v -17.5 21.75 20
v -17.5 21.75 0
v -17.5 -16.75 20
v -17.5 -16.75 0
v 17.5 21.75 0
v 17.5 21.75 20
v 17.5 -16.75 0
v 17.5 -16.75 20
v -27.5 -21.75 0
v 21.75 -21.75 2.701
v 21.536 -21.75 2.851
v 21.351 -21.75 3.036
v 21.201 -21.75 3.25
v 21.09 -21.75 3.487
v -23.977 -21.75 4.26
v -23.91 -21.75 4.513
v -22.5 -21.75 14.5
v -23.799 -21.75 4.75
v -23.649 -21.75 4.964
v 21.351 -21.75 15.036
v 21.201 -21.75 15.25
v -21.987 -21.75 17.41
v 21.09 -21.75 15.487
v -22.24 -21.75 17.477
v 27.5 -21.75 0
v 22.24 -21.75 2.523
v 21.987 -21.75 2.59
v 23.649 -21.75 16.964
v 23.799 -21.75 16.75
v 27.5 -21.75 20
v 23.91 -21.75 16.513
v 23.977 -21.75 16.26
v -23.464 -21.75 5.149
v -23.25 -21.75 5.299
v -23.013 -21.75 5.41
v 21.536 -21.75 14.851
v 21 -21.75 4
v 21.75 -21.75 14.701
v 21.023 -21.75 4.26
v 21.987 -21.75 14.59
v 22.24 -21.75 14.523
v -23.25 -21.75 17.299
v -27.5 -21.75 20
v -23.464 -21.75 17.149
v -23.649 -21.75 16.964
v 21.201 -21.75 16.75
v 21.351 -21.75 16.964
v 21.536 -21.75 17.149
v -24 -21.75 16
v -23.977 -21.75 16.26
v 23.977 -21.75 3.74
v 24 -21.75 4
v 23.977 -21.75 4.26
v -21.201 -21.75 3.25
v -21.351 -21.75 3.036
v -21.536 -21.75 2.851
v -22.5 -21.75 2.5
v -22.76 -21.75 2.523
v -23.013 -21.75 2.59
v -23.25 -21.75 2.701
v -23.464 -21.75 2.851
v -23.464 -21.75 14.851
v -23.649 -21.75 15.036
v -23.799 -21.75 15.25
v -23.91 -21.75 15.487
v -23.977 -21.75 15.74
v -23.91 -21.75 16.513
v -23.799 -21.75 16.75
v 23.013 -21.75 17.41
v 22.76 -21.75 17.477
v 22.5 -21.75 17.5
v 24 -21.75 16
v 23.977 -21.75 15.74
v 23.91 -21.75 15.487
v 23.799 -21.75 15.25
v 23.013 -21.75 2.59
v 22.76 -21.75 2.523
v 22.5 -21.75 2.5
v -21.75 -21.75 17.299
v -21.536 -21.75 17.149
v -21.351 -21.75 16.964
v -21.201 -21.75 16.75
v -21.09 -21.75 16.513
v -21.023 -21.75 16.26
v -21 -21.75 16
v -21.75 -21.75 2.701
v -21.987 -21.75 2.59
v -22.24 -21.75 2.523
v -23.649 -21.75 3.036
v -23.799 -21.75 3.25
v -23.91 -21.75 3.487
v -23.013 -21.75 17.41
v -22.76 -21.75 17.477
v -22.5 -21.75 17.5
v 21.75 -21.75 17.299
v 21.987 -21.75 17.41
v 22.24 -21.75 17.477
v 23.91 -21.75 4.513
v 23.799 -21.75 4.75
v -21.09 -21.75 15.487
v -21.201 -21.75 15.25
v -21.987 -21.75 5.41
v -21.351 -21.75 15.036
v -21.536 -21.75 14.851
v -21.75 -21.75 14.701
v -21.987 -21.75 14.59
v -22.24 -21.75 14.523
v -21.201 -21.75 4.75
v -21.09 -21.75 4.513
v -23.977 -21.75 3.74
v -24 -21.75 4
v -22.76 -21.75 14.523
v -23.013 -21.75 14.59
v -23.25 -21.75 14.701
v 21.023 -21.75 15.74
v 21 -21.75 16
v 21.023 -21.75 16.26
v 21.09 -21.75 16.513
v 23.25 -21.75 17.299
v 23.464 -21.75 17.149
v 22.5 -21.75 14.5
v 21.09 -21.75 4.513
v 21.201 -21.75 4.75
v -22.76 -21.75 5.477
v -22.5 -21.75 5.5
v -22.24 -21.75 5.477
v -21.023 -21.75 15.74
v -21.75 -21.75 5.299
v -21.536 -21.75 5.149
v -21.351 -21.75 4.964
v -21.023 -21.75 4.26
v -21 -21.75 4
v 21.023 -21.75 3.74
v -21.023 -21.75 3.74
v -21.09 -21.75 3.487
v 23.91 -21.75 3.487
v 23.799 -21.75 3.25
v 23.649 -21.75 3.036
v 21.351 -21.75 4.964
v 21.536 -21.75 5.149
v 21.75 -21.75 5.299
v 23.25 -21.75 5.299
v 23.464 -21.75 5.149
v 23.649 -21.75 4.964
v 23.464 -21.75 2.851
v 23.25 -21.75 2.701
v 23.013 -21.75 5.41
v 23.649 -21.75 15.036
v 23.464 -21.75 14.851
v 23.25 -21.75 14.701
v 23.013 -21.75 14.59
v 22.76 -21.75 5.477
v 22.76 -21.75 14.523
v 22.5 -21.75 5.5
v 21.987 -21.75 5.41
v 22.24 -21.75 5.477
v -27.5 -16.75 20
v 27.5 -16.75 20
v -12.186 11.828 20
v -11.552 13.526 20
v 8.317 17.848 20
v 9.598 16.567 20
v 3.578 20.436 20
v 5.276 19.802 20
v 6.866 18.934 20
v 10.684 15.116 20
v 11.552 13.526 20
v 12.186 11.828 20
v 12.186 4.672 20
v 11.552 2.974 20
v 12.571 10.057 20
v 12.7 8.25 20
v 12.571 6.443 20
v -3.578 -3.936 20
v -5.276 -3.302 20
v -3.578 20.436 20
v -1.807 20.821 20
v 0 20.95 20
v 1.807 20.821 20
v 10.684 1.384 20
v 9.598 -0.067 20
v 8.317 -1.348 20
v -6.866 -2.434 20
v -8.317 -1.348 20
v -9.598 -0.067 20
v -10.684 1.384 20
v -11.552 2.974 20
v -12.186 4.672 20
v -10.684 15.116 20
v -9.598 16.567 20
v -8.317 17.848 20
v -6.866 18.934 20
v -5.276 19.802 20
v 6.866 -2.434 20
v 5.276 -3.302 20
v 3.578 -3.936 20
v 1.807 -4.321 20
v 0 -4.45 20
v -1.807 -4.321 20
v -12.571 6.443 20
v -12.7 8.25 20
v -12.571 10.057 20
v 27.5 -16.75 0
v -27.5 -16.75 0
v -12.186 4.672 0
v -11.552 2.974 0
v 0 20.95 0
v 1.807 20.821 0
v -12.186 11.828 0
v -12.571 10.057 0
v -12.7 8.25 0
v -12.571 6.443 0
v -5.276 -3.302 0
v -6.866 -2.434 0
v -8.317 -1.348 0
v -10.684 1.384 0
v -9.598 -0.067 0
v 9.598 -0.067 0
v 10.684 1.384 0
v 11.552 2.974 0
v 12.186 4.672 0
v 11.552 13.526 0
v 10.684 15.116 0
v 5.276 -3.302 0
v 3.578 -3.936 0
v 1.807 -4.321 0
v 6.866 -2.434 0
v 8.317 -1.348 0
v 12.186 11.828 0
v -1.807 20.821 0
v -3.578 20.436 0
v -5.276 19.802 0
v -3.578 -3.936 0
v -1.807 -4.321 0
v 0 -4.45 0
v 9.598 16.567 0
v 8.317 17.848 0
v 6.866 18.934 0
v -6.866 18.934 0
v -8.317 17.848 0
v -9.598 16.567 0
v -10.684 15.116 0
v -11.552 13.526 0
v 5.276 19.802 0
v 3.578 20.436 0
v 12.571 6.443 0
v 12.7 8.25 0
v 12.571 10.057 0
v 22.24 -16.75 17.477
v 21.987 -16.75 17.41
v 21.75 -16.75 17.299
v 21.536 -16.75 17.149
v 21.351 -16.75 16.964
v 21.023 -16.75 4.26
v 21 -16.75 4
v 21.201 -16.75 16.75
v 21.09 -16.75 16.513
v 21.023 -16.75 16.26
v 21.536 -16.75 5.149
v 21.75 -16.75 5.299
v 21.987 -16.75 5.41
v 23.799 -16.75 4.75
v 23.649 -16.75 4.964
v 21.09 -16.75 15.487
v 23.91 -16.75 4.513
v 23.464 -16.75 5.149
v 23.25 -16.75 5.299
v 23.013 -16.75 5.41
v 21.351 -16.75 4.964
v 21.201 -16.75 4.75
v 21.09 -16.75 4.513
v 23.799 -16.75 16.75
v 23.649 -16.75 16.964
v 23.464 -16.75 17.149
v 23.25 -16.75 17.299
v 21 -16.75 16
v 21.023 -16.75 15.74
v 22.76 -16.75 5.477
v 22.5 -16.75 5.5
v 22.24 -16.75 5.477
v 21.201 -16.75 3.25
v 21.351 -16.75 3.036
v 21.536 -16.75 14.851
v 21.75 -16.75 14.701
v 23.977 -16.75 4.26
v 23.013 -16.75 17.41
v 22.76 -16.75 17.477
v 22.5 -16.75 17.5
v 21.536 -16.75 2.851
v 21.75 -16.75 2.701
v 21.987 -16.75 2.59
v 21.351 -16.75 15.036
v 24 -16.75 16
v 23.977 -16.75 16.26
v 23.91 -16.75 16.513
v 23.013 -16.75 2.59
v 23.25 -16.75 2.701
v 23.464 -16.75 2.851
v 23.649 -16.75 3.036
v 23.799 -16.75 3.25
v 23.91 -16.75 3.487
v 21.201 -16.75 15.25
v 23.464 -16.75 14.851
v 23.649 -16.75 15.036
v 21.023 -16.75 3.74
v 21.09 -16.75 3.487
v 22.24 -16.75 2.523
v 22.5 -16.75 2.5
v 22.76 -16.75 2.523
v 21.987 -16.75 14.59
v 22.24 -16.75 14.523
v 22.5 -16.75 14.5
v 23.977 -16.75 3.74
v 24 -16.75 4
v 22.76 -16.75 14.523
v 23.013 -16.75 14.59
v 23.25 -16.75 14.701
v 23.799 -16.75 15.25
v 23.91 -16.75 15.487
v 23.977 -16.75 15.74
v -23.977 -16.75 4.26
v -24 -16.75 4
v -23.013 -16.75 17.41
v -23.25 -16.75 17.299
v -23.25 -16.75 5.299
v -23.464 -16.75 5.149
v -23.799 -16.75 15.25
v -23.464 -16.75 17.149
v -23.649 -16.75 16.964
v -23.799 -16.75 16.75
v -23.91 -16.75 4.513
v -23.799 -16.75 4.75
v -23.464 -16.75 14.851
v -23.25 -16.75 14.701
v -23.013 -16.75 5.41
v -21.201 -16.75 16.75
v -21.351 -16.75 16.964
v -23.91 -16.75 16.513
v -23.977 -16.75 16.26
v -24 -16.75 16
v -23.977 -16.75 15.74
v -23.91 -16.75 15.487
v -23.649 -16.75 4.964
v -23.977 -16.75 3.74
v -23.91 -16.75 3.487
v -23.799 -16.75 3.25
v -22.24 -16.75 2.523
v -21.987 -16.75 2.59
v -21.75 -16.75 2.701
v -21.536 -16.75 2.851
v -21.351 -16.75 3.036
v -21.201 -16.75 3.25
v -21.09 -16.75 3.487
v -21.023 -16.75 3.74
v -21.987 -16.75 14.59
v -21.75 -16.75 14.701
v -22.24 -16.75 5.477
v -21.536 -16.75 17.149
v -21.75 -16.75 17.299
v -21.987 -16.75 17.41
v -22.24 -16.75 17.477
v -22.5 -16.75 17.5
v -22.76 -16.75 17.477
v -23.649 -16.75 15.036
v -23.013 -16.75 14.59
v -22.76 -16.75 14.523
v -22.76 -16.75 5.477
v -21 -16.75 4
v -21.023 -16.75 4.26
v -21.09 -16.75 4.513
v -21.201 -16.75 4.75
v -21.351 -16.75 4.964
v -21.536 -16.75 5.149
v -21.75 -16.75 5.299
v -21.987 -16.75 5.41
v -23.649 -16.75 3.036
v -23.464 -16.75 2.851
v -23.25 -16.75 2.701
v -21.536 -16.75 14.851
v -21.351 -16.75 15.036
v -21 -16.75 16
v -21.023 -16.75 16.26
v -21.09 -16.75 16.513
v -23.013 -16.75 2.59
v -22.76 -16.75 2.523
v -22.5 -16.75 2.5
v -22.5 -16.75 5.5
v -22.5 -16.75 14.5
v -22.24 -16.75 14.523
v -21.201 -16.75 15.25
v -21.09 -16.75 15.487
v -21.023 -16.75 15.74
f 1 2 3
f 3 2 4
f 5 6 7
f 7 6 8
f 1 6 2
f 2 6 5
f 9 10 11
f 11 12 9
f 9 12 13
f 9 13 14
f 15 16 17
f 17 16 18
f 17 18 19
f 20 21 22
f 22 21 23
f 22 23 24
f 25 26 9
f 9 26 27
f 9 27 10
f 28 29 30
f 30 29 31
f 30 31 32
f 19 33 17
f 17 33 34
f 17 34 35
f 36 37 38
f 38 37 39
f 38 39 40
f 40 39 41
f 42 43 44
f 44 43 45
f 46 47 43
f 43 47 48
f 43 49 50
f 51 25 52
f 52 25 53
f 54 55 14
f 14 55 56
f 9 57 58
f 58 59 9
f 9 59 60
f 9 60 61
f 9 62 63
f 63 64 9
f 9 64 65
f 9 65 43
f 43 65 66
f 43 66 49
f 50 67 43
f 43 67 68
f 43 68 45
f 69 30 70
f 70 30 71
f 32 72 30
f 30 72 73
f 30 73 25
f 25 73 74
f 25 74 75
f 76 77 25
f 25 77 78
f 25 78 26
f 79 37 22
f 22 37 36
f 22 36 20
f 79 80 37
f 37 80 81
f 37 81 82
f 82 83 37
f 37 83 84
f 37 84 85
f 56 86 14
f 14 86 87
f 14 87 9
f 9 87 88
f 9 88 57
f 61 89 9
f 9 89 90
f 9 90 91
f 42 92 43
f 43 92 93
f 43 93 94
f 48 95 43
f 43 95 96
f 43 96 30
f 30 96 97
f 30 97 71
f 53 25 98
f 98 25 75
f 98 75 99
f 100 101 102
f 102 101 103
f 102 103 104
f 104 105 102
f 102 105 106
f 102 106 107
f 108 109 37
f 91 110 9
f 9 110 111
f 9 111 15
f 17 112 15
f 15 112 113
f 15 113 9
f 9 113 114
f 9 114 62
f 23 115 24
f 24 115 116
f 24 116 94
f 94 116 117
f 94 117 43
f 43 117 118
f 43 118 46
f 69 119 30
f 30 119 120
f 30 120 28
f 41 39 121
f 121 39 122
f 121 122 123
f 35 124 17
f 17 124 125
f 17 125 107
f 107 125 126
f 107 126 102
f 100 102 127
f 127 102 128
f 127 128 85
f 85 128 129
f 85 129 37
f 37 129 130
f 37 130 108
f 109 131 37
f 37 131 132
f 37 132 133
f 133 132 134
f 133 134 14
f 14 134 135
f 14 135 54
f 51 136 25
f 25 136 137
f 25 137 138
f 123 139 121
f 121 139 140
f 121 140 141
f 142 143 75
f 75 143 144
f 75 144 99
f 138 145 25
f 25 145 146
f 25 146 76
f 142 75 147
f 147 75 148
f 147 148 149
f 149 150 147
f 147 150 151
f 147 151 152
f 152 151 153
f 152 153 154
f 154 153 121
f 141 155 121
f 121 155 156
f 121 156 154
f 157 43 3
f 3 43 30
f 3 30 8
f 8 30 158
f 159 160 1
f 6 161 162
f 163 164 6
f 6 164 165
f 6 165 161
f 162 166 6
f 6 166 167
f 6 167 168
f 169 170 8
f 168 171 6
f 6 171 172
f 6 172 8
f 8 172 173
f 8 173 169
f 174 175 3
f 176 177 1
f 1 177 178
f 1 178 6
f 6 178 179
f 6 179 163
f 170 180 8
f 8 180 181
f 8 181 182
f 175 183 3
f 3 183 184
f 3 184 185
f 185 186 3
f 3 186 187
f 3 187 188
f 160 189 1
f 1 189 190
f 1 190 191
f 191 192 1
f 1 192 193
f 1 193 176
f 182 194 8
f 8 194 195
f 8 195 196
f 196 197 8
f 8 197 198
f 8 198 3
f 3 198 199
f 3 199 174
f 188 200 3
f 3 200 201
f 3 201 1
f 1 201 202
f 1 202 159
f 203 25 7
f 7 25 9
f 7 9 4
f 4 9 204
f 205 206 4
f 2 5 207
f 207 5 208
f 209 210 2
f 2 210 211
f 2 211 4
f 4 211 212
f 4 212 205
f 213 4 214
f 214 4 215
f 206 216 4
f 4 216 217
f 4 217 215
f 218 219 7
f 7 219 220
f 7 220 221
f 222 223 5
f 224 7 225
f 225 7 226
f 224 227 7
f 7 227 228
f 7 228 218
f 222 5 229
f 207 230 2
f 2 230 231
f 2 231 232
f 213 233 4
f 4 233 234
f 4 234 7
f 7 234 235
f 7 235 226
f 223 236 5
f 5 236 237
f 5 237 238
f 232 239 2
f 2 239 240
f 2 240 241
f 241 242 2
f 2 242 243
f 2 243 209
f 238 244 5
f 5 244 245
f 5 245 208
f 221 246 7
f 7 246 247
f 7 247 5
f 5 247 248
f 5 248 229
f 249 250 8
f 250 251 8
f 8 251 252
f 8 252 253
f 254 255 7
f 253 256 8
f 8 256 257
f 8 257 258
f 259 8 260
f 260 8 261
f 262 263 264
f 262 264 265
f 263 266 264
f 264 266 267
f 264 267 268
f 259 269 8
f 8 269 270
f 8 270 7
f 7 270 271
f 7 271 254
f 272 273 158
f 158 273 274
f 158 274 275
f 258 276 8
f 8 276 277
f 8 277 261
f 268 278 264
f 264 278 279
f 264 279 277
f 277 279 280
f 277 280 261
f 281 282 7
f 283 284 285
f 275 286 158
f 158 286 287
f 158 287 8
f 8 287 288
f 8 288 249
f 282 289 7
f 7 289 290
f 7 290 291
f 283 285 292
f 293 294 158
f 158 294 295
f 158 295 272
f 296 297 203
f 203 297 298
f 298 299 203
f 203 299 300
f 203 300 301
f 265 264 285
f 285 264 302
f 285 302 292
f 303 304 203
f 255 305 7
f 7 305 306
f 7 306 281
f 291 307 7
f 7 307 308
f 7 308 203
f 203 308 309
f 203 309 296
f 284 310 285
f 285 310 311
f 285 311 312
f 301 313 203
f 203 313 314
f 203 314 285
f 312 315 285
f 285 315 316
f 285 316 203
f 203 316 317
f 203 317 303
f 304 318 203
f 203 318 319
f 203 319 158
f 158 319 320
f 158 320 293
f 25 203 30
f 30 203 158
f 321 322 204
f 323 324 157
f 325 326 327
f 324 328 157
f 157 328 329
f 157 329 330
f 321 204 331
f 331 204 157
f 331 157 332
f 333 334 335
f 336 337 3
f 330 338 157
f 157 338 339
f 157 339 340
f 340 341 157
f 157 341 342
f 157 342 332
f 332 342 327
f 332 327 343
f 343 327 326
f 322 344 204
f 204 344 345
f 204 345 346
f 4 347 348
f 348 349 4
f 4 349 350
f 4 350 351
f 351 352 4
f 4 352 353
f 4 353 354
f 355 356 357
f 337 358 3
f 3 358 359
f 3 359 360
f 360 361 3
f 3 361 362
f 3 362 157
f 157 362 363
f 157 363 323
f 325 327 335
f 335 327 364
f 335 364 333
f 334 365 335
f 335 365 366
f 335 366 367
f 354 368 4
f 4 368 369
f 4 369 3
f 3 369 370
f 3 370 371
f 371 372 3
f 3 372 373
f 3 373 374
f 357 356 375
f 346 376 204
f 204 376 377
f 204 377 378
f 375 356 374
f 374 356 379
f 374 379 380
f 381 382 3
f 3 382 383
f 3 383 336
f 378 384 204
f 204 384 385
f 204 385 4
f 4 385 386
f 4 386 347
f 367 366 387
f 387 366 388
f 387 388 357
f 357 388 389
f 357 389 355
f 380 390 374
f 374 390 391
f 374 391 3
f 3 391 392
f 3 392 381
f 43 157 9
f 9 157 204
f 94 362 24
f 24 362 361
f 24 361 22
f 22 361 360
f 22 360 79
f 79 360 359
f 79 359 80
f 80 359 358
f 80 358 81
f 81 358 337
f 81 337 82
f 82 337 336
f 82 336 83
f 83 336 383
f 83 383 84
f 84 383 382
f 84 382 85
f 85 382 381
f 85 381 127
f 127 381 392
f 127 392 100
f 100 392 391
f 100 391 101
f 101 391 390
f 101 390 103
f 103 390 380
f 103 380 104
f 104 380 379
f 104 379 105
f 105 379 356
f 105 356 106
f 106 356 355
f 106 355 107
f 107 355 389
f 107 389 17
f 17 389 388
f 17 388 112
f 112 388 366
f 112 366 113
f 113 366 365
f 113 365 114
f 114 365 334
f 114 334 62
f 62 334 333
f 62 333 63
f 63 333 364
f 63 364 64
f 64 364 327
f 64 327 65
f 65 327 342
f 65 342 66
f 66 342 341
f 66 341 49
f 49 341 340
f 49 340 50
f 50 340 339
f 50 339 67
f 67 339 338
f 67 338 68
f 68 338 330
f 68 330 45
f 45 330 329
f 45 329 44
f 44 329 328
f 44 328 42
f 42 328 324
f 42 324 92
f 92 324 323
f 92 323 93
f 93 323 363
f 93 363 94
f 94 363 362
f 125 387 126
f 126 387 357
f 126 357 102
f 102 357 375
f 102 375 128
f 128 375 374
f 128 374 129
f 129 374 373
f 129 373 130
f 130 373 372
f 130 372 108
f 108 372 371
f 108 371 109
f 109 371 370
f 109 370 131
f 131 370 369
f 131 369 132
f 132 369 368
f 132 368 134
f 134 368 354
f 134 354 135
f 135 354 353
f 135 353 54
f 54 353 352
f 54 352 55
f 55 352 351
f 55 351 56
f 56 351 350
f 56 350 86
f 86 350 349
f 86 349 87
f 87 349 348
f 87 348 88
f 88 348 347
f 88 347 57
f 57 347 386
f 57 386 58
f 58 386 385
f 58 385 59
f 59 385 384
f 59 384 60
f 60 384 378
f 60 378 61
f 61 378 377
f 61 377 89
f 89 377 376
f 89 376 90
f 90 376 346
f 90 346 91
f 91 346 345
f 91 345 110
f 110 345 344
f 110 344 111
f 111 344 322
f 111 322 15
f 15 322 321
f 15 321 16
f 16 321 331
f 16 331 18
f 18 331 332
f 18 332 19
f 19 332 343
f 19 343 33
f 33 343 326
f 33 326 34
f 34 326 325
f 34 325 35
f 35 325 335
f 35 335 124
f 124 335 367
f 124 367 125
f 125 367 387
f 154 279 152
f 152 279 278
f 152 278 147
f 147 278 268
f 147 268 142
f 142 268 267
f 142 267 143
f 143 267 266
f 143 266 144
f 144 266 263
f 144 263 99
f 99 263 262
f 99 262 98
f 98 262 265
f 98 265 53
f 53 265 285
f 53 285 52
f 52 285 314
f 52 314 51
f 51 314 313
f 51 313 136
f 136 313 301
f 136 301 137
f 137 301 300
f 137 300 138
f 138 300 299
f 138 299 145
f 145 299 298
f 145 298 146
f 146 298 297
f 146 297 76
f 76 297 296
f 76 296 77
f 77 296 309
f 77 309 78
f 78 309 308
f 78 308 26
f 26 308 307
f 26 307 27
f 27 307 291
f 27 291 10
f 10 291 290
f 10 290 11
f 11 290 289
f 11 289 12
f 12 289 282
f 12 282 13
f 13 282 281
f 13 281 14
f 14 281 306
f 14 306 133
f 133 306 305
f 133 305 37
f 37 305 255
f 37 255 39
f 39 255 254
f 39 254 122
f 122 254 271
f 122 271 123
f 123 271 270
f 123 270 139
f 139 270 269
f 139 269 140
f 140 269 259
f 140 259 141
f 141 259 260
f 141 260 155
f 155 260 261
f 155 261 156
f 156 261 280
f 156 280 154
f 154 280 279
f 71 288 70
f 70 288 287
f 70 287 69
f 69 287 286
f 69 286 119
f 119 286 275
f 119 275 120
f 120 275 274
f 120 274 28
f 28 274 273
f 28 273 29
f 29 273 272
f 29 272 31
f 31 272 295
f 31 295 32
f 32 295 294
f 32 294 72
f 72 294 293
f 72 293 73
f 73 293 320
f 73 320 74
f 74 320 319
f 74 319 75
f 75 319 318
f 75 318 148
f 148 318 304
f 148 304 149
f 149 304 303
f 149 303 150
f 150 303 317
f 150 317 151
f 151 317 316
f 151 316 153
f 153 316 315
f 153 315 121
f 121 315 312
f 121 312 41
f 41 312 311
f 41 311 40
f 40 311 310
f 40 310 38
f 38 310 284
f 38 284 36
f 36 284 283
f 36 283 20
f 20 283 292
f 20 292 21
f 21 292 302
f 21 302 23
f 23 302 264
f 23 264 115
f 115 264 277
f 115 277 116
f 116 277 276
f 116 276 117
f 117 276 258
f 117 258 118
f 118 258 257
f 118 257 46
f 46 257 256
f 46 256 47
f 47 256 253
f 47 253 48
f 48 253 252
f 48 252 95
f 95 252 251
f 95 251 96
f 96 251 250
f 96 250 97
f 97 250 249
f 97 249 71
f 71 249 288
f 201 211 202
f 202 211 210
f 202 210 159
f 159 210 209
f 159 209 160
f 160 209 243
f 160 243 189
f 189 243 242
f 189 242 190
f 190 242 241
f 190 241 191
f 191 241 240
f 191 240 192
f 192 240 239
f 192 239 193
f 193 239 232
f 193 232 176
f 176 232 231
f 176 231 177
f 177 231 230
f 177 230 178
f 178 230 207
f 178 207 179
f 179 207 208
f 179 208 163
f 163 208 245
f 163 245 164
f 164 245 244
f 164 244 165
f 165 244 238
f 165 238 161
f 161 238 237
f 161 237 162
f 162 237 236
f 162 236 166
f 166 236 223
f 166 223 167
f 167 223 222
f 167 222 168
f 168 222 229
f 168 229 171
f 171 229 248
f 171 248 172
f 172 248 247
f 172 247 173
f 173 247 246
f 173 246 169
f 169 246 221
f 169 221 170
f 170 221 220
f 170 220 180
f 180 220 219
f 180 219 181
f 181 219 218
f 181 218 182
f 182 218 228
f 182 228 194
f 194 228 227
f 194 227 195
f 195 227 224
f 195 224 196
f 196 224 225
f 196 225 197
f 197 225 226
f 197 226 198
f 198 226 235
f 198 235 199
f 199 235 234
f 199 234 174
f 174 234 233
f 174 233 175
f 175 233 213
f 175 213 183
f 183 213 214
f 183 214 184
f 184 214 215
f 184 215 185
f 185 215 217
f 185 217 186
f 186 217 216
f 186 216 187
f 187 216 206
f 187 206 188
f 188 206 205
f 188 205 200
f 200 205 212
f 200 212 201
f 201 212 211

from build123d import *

# Parameters (mm, degrees)
SKETCH_1_W          = 35
SKETCH_1_H          = 43.5
EXTRUDE_1_DEPTH     = 20
SKETCH_2_W          = 20
SKETCH_2_H          = 5
EXTRUDE_2_DEPTH     = 10
SKETCH_3_W          = 20
SKETCH_3_H          = 5
EXTRUDE_3_DEPTH     = 10
SKETCH_4_R          = 1.5
CUT_EXTRUDE_2_DEPTH = 5
SKETCH_5_R          = 12.7
CUT_EXTRUDE_3_DEPTH = 20


with BuildPart() as part:
    # Эскиз1 → Бобышка-Вытянуть1 (new body)
    with BuildSketch(Plane.XY):
        Rectangle(SKETCH_1_W, SKETCH_1_H)
    extrude(amount=EXTRUDE_1_DEPTH)

    # Эскиз2 → Бобышка-Вытянуть2 (add)
    with BuildSketch(Plane(origin=(17.5, 0, 0), x_dir=(0, 0, -1), z_dir=(1, 0, 0))):
        with Locations((-10, -19.25)):
            Rectangle(SKETCH_2_W, SKETCH_2_H)
    extrude(amount=EXTRUDE_2_DEPTH)

    # Эскиз3 → Бобышка-Вытянуть3 (add)
    with BuildSketch(Plane.ZY.offset(17.5)):
        with Locations((10, -19.25)):
            Rectangle(SKETCH_3_W, SKETCH_3_H)
    extrude(amount=EXTRUDE_3_DEPTH)

    # Эскиз4 → Вырез-Вытянуть2 (cut)
    with BuildSketch(Plane(origin=(0, -16.75, 0), x_dir=(1, 0, 0), z_dir=(0, 1, 0))):
        with Locations((-22.5, -16)):
            Circle(SKETCH_4_R)
        with Locations((-22.5, -4)):
            Circle(SKETCH_4_R)
        with Locations((22.5, -16)):
            Circle(SKETCH_4_R)
        with Locations((22.5, -4)):
            Circle(SKETCH_4_R)
    extrude(amount=-CUT_EXTRUDE_2_DEPTH, mode=Mode.SUBTRACT)

    # Эскиз5 → Вырез-Вытянуть3 (cut)
    with BuildSketch(Plane(origin=(0, 0, 0), x_dir=(-1, 0, 0), z_dir=(0, 0, -1))):
        with Locations((0, 8.25)):
            Circle(SKETCH_5_R)
    extrude(amount=-CUT_EXTRUDE_3_DEPTH, mode=Mode.SUBTRACT)


solid = part.part
